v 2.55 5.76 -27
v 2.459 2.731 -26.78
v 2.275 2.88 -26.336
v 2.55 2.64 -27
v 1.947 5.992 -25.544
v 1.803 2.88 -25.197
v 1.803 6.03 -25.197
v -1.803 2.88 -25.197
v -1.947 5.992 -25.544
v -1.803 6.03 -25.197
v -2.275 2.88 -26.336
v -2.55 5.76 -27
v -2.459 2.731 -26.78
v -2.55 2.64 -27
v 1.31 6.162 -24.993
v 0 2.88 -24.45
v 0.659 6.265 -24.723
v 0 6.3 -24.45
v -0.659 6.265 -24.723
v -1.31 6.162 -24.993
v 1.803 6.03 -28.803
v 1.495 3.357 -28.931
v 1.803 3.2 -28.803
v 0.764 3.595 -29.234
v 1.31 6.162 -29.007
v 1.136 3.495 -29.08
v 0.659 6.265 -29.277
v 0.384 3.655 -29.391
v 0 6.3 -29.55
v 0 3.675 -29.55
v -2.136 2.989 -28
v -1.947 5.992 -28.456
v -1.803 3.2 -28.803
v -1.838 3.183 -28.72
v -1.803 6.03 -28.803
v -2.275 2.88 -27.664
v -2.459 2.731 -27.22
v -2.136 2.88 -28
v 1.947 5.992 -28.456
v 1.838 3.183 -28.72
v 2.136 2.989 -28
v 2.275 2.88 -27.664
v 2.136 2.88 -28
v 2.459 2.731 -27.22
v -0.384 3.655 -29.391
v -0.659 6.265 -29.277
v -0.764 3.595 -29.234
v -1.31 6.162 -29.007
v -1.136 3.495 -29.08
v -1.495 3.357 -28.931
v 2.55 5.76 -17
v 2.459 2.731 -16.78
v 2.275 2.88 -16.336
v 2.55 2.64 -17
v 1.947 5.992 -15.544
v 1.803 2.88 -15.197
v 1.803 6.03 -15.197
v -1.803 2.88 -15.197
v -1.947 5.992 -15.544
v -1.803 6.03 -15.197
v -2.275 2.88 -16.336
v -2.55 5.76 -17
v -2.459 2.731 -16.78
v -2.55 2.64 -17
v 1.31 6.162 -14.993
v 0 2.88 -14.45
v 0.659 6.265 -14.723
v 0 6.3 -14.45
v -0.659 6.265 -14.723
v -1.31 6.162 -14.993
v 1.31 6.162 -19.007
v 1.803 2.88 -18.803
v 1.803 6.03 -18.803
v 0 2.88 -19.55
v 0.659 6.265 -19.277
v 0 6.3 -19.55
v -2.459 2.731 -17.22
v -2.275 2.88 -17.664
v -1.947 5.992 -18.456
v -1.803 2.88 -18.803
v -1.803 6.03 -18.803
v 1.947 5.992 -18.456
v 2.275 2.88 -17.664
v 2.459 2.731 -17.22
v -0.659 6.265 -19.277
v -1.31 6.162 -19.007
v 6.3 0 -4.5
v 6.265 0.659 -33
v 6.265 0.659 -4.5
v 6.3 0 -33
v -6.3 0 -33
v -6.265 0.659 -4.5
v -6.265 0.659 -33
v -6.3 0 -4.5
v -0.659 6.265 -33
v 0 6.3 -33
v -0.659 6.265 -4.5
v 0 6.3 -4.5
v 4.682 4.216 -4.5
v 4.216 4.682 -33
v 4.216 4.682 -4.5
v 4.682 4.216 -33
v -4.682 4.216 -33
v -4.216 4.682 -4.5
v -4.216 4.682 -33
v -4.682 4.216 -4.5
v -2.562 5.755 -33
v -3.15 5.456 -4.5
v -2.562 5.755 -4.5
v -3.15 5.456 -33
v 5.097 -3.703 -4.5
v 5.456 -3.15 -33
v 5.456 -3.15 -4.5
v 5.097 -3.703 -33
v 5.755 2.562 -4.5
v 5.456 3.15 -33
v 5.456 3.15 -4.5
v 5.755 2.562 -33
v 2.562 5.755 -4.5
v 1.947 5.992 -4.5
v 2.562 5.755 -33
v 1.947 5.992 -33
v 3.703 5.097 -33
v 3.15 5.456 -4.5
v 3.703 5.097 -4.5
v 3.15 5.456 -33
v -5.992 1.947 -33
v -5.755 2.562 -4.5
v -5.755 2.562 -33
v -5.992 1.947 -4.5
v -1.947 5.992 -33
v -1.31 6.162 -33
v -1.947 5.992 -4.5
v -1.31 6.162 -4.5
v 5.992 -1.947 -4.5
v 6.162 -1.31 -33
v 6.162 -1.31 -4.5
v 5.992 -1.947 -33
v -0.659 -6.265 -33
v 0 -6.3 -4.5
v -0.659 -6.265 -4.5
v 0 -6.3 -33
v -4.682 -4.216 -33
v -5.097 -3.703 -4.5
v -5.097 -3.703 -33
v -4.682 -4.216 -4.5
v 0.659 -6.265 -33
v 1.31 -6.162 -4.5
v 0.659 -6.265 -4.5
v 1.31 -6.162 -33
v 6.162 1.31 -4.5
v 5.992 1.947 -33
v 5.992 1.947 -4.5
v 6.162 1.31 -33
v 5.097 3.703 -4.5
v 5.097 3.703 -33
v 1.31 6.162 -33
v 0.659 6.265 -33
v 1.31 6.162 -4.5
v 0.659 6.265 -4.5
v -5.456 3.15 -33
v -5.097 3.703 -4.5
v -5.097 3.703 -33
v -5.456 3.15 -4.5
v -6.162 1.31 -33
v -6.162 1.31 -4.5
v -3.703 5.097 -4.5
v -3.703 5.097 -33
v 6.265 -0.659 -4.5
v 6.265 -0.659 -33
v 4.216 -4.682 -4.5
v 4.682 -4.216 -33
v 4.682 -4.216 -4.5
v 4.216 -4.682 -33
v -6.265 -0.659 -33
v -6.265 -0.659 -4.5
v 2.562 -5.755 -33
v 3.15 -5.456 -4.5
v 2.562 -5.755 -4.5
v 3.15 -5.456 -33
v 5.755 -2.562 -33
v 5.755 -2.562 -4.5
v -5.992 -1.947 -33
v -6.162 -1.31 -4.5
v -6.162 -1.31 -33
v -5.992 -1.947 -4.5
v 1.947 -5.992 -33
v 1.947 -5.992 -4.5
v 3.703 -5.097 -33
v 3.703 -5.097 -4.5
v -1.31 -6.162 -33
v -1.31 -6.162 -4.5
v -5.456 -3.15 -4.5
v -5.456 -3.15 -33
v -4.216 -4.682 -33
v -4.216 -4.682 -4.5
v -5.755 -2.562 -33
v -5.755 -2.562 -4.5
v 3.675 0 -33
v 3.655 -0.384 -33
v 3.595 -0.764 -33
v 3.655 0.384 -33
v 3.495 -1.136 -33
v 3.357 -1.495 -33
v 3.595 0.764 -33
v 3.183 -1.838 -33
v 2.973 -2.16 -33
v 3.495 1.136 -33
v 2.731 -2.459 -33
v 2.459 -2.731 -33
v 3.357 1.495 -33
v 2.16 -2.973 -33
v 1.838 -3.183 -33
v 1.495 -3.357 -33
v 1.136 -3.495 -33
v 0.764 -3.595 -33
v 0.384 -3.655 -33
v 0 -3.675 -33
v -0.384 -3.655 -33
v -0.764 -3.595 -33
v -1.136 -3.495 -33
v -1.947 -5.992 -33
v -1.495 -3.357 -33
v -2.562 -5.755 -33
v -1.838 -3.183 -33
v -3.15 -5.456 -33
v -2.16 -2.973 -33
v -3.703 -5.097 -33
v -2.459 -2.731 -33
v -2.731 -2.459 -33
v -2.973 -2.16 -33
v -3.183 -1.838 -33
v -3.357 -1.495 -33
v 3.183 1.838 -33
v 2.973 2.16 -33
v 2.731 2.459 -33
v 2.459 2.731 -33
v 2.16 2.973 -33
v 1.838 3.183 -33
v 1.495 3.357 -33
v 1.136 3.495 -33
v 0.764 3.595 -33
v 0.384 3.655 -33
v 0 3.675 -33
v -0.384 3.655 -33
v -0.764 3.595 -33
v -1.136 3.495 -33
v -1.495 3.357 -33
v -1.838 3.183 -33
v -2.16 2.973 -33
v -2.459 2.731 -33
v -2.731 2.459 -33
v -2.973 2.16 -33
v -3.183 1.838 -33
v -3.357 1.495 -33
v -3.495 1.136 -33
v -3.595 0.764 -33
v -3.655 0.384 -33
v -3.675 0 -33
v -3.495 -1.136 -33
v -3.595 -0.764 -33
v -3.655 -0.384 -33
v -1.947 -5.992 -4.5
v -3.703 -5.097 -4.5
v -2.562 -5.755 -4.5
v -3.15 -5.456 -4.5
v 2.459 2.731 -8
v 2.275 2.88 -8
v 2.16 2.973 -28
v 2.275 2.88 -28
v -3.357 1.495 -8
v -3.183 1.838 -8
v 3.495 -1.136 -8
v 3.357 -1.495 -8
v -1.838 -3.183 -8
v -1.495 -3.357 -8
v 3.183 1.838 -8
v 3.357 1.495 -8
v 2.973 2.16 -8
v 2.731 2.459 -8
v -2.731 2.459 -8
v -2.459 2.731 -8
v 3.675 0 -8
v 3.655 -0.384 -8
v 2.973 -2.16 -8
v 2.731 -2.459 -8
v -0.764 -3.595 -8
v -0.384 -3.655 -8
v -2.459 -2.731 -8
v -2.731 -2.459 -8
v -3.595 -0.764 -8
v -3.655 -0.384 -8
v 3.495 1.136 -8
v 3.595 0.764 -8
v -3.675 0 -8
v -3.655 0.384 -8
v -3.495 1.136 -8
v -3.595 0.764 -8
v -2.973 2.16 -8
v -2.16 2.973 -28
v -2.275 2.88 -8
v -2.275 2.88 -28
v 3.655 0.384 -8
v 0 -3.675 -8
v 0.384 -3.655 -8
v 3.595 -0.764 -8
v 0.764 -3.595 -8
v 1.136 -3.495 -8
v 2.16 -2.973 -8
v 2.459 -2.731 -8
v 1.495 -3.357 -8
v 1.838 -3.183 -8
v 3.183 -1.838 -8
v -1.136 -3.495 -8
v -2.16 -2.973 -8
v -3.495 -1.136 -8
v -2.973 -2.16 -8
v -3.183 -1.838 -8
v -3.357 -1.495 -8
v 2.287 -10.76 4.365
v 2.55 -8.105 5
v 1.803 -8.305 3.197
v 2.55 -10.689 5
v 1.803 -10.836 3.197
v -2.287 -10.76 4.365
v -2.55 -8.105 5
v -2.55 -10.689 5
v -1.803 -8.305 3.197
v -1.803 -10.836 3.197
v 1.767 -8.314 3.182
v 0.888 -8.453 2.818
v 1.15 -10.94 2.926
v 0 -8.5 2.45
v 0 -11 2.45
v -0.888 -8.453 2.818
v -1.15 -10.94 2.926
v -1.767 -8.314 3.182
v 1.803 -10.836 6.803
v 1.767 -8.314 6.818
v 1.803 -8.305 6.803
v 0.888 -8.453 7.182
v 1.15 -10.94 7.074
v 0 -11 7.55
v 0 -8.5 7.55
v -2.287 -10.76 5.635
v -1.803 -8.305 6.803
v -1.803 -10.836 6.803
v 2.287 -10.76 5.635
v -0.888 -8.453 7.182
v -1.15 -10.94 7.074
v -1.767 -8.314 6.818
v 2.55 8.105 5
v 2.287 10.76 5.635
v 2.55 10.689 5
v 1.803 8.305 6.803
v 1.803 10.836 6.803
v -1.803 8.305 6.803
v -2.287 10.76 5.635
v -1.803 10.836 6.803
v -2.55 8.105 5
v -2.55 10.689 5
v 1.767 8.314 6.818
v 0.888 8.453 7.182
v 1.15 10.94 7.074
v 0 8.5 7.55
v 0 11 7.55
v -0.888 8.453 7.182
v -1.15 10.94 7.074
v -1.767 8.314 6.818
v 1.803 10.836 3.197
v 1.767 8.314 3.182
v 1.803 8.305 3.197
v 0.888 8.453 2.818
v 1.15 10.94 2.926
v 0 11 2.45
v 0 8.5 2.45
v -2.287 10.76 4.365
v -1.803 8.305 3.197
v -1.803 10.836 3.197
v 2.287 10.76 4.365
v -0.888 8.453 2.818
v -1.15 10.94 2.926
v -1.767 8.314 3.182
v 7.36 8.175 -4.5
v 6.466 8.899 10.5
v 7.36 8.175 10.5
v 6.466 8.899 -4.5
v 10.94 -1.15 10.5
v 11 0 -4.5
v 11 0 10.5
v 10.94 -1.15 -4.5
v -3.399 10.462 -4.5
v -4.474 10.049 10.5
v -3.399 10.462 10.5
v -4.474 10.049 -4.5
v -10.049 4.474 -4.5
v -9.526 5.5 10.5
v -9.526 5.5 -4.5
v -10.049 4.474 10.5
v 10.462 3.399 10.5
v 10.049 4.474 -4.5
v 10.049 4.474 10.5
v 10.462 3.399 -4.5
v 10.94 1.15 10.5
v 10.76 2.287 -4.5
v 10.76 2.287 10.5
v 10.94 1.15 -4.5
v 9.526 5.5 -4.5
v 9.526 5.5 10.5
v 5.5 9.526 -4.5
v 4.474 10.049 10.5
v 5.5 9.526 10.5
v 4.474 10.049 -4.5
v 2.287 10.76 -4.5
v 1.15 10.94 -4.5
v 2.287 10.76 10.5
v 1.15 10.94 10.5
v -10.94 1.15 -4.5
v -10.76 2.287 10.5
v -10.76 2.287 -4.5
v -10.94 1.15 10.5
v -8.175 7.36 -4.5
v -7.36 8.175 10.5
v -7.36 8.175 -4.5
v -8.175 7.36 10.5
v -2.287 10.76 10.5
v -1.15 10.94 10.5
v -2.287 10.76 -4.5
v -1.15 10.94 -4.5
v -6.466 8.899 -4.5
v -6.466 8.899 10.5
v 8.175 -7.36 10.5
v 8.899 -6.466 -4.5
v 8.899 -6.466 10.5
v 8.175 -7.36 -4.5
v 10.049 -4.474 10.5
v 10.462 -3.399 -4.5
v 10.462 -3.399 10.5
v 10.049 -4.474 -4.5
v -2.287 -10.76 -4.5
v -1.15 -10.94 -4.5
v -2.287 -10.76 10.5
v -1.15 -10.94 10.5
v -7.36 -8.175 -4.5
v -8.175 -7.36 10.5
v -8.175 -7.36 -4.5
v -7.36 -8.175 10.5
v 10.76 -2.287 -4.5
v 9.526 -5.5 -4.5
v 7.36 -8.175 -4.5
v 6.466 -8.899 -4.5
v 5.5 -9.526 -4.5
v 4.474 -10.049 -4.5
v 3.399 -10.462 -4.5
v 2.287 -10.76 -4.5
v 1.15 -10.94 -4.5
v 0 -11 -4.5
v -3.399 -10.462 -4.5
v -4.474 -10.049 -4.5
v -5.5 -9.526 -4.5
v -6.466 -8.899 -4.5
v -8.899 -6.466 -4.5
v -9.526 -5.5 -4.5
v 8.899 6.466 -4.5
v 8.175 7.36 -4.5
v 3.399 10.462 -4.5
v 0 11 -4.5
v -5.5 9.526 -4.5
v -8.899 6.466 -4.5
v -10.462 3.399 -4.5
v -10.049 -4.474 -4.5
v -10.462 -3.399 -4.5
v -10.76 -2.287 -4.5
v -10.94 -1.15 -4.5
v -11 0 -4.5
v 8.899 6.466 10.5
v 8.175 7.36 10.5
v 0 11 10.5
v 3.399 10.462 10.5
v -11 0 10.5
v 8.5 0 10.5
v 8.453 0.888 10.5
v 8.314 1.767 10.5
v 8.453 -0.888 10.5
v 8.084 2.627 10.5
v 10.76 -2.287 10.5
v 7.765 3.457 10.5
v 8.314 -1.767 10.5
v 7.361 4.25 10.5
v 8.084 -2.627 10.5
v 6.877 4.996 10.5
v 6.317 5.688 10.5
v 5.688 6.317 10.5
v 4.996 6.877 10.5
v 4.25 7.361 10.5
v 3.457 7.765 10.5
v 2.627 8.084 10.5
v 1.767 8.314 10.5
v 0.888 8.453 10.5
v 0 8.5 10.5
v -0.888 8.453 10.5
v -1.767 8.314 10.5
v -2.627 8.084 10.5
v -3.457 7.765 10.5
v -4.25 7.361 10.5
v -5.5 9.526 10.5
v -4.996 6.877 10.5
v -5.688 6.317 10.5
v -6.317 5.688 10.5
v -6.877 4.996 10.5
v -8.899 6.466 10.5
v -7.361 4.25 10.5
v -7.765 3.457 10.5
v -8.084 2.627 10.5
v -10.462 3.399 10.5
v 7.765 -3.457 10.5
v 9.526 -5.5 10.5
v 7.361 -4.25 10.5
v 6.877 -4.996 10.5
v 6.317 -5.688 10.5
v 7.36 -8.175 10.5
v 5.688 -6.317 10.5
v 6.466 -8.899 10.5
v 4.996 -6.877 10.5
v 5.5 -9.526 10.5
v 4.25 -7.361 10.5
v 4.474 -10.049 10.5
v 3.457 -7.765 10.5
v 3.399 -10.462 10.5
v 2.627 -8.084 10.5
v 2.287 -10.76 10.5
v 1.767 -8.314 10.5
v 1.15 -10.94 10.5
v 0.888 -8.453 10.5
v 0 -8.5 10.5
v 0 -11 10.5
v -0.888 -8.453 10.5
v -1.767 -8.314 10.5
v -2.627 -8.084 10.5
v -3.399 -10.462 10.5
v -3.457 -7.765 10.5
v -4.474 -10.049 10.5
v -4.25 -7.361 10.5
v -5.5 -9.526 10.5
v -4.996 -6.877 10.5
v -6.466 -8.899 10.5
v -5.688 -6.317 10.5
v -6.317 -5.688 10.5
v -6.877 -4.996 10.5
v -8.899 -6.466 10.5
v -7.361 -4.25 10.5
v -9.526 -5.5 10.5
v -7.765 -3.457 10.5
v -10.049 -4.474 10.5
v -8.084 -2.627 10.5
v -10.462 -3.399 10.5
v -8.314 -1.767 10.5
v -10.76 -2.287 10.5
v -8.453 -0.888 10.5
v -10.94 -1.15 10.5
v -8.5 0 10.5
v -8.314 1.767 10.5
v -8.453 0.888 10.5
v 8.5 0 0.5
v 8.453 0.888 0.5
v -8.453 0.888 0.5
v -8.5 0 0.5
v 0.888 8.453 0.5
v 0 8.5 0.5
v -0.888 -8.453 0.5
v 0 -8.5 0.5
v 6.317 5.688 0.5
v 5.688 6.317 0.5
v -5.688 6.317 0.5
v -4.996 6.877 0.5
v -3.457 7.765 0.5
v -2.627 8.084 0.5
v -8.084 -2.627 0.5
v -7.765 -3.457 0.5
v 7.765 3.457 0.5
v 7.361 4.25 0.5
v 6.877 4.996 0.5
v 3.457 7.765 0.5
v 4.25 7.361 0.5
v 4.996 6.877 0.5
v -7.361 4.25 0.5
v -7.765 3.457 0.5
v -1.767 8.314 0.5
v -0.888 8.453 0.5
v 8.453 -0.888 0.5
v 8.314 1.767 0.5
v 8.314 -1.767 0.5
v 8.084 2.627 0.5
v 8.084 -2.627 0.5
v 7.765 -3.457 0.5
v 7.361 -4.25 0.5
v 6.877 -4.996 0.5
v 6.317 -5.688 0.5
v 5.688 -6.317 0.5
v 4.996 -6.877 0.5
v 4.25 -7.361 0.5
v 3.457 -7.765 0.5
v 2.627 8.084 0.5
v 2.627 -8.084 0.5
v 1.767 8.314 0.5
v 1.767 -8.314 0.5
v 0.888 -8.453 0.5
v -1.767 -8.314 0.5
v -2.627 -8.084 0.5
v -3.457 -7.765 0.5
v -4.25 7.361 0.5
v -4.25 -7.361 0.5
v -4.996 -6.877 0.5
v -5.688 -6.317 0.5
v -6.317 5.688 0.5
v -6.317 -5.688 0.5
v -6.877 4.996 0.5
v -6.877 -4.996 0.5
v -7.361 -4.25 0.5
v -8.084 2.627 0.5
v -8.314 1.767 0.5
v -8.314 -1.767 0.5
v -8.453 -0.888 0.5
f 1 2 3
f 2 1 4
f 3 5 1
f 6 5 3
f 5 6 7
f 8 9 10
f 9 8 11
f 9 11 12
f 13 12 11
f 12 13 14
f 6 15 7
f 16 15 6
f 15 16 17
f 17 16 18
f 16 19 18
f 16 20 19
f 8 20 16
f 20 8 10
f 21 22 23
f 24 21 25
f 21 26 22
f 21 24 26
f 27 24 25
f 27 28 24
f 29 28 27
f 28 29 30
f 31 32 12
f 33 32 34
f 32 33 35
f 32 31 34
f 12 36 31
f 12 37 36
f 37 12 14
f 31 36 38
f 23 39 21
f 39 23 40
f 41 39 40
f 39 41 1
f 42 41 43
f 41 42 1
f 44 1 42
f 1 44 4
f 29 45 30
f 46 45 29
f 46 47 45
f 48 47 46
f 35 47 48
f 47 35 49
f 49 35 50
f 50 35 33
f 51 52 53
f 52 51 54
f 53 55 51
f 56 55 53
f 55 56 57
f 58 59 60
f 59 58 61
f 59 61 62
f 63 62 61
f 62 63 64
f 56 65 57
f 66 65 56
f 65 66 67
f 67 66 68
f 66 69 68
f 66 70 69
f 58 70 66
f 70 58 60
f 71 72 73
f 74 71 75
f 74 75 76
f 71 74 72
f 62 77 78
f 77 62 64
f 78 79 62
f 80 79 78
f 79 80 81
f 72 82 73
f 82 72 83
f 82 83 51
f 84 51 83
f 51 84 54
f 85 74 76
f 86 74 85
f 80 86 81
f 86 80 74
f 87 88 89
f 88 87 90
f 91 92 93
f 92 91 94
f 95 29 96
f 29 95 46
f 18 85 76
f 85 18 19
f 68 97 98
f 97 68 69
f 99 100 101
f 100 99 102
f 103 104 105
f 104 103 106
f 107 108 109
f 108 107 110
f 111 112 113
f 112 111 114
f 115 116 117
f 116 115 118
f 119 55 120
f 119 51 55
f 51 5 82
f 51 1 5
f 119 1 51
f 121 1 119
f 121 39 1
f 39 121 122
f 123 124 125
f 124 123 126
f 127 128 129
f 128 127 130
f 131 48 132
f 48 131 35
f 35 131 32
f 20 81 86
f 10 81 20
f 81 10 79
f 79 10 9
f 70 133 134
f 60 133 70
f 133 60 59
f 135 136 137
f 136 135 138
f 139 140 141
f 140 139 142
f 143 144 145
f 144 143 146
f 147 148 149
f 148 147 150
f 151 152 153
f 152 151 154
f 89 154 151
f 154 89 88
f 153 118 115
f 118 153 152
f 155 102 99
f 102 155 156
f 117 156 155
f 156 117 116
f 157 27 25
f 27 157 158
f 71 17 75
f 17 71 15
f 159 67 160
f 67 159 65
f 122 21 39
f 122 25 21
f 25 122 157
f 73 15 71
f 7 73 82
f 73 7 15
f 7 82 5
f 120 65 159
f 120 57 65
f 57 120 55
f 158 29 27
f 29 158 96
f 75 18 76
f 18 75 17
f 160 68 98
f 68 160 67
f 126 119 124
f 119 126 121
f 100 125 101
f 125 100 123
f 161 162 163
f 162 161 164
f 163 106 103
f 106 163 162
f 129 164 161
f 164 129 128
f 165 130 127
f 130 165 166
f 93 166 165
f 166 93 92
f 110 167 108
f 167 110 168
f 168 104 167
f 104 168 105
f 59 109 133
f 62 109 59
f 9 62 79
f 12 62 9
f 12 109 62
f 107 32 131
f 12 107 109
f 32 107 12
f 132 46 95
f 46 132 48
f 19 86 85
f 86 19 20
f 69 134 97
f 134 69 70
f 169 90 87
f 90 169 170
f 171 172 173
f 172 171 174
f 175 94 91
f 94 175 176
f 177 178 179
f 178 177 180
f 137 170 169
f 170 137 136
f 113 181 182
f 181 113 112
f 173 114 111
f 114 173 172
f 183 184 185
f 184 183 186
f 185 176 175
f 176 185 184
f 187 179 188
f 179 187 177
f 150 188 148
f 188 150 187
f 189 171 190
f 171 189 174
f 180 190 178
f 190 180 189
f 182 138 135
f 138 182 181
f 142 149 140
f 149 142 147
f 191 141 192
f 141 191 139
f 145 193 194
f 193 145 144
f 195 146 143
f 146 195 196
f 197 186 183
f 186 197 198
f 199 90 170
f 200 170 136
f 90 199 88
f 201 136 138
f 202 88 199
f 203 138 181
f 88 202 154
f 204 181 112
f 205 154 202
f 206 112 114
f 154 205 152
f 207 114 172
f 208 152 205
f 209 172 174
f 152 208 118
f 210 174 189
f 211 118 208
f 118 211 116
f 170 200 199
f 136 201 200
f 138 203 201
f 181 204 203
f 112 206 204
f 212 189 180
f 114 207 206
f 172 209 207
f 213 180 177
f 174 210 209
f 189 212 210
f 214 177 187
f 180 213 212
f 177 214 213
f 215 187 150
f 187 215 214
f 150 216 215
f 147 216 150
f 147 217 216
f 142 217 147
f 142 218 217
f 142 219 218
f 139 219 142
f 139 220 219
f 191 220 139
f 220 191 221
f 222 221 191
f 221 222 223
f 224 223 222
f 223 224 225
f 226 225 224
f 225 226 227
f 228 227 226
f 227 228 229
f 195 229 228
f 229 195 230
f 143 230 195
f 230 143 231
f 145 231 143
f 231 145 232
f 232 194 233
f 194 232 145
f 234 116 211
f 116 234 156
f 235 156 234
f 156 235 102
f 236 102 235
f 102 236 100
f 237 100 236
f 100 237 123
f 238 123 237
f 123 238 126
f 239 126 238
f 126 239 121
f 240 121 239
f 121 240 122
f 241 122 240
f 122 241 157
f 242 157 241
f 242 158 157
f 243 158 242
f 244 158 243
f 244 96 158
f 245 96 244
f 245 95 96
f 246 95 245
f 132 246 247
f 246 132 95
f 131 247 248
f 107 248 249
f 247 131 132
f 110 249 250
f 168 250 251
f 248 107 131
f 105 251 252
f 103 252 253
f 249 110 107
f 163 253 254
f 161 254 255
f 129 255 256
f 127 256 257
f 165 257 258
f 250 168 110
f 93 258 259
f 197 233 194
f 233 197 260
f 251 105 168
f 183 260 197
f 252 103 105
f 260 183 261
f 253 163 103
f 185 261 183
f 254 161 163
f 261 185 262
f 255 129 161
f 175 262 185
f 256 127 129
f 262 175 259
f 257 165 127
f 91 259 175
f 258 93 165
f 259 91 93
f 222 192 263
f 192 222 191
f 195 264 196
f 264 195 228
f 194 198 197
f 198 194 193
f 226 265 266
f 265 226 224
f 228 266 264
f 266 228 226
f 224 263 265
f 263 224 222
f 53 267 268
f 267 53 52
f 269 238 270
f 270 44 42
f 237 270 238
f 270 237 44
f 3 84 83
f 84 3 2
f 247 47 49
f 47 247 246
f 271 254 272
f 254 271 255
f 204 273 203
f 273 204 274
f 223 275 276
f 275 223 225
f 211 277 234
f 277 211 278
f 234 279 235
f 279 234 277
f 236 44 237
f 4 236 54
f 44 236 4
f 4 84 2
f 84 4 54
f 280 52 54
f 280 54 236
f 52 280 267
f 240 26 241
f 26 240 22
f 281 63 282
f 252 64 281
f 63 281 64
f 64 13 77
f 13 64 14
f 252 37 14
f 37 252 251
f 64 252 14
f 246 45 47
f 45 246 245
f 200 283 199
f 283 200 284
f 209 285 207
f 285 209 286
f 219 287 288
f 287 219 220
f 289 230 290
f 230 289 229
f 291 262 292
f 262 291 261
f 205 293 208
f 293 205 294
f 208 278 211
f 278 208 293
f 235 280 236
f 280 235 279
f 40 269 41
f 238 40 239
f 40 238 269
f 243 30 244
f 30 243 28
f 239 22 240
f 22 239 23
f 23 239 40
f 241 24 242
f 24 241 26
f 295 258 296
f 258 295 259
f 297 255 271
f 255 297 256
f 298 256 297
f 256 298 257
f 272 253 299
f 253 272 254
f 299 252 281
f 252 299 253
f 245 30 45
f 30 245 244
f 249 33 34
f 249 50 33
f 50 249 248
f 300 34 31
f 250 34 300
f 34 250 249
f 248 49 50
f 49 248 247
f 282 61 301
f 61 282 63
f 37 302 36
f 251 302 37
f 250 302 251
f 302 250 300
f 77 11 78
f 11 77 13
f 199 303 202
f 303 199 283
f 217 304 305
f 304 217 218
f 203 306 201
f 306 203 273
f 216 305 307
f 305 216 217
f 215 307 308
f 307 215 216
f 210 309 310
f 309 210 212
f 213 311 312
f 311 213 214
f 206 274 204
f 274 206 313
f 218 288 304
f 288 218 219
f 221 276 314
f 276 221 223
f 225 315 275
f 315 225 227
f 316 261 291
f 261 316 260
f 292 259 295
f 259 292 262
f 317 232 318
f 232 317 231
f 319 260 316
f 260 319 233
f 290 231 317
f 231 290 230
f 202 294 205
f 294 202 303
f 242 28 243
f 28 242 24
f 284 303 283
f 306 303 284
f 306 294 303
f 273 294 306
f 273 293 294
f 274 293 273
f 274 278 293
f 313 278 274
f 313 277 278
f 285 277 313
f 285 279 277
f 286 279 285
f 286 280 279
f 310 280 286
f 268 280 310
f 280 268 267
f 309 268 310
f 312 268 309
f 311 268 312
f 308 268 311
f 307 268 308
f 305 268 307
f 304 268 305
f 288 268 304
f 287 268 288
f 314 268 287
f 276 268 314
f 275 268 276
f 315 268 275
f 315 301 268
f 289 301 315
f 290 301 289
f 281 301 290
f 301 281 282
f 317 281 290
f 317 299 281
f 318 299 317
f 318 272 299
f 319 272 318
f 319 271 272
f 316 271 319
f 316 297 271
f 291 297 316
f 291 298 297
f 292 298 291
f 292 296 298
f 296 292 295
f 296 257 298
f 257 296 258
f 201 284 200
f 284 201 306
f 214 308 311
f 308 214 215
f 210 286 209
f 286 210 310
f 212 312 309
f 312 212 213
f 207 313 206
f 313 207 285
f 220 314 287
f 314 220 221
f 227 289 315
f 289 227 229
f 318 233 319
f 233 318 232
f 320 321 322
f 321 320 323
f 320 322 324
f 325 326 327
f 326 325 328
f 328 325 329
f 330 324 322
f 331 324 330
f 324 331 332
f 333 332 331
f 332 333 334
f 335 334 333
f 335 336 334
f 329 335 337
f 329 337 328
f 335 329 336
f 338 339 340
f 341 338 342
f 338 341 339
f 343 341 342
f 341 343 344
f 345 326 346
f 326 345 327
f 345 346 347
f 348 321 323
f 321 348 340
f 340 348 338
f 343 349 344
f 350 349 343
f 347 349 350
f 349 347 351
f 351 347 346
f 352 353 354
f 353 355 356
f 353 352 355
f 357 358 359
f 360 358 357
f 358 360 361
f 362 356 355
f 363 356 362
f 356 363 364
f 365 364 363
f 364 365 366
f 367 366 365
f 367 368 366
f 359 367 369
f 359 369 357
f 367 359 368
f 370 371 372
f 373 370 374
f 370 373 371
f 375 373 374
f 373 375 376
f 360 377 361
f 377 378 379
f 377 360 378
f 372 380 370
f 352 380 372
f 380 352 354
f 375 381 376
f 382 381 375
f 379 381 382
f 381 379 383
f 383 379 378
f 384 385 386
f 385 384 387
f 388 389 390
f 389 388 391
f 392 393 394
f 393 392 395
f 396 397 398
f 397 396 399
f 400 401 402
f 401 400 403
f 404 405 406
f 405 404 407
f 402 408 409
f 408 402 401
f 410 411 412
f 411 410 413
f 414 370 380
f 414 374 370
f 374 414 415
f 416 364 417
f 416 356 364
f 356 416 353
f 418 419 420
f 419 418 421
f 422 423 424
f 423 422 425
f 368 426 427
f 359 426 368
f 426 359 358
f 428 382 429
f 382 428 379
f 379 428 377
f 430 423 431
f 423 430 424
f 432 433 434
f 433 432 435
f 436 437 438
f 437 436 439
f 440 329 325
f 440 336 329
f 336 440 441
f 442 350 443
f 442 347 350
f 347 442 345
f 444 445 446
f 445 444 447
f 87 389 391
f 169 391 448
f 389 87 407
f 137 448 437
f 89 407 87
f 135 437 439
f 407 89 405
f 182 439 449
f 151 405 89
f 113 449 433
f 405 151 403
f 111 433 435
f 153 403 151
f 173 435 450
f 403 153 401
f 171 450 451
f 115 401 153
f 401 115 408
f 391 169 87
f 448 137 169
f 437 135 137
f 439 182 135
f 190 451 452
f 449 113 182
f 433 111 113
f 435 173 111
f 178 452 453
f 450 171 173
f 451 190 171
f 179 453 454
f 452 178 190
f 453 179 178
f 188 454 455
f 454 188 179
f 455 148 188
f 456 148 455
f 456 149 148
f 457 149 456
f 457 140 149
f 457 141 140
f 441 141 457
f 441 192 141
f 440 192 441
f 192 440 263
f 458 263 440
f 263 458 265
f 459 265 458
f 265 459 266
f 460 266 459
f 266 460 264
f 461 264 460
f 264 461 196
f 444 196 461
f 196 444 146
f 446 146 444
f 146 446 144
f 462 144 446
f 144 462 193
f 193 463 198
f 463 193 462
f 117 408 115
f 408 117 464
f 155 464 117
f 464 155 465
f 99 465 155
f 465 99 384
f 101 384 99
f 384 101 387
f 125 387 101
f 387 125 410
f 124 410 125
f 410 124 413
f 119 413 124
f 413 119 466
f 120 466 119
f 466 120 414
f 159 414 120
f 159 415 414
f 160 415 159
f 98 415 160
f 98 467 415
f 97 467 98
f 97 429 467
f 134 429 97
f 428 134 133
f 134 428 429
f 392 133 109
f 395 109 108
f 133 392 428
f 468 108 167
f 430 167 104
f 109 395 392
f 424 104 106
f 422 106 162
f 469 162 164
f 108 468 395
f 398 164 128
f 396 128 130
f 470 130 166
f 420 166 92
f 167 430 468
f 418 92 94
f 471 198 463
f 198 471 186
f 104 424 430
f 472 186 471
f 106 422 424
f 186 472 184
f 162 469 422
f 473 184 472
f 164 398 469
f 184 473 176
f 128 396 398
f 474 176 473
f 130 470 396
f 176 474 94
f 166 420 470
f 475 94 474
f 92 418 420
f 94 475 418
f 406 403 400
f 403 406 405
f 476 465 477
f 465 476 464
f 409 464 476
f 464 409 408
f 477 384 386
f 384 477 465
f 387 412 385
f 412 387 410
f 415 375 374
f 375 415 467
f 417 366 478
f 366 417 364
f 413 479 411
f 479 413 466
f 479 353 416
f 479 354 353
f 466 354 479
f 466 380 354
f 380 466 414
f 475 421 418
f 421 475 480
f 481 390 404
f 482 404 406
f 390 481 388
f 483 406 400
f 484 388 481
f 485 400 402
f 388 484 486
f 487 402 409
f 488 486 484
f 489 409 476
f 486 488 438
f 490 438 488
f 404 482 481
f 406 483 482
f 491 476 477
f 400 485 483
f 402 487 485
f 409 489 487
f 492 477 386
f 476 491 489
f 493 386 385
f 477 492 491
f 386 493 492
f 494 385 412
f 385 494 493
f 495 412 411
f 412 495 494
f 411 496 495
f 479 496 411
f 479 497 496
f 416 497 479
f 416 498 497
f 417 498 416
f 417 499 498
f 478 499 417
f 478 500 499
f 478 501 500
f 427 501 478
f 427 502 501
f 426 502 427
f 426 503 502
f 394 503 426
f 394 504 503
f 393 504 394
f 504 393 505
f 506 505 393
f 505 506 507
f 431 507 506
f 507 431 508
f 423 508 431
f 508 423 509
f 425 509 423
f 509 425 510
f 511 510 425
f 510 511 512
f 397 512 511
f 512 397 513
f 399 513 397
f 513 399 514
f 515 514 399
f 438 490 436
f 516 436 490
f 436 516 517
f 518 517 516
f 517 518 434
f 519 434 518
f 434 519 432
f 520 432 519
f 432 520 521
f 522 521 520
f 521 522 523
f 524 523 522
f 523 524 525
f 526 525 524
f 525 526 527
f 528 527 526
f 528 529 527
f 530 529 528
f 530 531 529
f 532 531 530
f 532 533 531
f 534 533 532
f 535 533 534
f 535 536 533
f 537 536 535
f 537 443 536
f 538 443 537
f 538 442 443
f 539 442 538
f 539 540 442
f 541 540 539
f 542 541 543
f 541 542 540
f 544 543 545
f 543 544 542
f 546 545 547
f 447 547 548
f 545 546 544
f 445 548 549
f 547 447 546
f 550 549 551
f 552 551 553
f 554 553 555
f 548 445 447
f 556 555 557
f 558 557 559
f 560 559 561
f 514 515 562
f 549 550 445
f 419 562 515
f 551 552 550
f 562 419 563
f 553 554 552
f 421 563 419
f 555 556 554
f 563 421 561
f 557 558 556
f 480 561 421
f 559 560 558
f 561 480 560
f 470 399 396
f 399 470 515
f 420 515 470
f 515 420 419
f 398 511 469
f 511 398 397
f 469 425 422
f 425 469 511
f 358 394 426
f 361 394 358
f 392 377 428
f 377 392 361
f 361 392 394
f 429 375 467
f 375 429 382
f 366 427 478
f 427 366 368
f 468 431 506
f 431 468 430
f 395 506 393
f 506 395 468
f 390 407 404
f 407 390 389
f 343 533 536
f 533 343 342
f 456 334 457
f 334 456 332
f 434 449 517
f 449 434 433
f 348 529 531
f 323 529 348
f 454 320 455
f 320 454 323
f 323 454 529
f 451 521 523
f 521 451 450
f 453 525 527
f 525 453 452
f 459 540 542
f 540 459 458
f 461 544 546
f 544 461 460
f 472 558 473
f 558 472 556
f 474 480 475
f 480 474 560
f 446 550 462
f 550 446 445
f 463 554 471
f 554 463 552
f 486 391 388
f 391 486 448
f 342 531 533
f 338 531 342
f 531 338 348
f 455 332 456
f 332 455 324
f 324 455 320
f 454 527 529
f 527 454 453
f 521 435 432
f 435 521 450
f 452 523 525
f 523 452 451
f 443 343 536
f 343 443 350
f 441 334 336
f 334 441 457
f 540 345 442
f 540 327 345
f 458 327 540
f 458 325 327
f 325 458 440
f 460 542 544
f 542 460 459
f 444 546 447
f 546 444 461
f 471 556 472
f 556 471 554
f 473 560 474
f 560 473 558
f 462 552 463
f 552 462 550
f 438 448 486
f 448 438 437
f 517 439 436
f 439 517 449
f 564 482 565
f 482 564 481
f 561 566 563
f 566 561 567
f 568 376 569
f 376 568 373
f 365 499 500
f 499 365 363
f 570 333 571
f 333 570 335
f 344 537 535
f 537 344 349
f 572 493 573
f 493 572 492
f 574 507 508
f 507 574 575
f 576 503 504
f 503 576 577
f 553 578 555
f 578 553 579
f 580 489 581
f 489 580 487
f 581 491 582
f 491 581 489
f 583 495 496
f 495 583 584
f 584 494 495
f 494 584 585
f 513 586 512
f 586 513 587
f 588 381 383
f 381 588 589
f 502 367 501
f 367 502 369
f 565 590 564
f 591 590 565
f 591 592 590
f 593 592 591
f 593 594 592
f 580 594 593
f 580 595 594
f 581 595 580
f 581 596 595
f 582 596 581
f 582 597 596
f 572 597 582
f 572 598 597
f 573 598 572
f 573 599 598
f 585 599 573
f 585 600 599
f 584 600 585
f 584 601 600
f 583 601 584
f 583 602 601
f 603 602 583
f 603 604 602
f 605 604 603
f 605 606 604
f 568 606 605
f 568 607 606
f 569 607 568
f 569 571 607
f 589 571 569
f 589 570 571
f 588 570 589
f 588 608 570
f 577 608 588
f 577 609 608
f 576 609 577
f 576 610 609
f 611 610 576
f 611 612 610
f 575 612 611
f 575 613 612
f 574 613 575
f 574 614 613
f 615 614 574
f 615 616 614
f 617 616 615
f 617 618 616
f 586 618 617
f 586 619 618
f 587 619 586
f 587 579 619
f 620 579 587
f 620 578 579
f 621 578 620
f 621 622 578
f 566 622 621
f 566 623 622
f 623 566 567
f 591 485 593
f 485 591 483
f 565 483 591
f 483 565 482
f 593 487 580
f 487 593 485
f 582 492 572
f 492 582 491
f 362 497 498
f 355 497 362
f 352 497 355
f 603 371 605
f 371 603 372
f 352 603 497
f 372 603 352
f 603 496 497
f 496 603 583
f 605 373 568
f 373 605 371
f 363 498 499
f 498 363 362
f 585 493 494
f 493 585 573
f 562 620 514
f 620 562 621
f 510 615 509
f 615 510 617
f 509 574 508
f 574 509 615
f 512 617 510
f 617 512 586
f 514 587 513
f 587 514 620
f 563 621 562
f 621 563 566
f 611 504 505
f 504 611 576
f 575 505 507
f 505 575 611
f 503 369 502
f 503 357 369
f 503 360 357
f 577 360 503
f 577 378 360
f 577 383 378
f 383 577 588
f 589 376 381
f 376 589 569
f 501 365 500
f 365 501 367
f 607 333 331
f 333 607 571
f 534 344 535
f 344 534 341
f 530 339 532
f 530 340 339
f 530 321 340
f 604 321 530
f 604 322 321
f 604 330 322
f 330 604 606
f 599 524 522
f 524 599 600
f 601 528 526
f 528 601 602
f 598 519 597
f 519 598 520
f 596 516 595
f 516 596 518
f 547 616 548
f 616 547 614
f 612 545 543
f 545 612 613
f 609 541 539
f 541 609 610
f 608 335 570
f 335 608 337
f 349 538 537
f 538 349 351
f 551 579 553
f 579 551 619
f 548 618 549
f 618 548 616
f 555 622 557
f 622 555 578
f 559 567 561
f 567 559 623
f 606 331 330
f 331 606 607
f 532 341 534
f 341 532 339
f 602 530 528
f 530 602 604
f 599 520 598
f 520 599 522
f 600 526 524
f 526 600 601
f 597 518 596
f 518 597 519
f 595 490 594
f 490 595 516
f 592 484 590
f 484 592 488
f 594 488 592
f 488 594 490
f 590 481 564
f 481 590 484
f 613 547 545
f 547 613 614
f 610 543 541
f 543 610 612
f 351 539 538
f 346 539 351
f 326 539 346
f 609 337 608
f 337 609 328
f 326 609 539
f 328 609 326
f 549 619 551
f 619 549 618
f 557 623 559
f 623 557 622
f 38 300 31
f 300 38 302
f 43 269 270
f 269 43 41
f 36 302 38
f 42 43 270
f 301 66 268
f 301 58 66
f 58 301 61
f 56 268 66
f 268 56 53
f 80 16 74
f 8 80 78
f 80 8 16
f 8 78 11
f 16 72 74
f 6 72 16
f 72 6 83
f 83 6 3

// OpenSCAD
// file: beam.scad
// Misumi Beam
module misumibeam(size1=15, size2=15, length=100, extra=0.1) {
   difference() {
      cube([size1+extra, size2+extra, length], center=true);
      for (a = [0:180:180]) rotate([0, 0, a]) {
         translate([size1/2, 0, 0]) {
          //  % cube([size1/2, 3, length+1], center=true);
			minkowski() {
               cube([size1/2-(extra+1), size1/6-extra, length+1], center=true);
               cylinder(r=0.5, h=1, center=true);
			} 
        }
      }
      for (a = [0:90:270]) rotate([0, 0, a]) {
         translate([size2/2, 0, 0]) {
          //  % cube([size1/2, 3, length+1], center=true);
			minkowski() {
               cube([size1/2-(extra+1), size1/6-extra, length+1], center=true);
               cylinder(r=0.5, h=1, center=true);
			} 
        }
      }
   }
}

# misumibeam(15, 15, 300);
// file: nema17.scad
include <configuration.scad>;

// NEMA17 stepper motor

module stepper_motor(length=47.5, shaft_radius=5.00/2) {
   intersection() {
      cube([42.2, length, 42.2], center=true);
      rotate([90, 0, 0])
      cylinder(r=25.5, h=length+1, center=true);
   }
   translate([0, -length/2, 0]) {
// drive shaft
		rotate([90, 0, 0]) {
		 cylinder(r1=11, r2=11, h=2, $fn=40);
		 cylinder(r=shaft_radius, h=25);
		}
// mounting bolts
      for (a = [0:90:360]) rotate([0, a, 0]) {
         translate([15.5, 0, 15.5]) rotate([90, 0, 0])
         cylinder(r=m3_major_radius, h=10,  $fn=30);
      }
   }
}

module stepper_motor_boolean(length=47.5, shaft_radius=7.00/2) {
   intersection() {
      cube([42.2, length, 42.2], center=true);
      rotate([90, 0, 0])
      cylinder(r=25.5, h=length+1, center=true);
   }
   translate([0, -length/2, 0]) {
// drive shaft
		rotate([90, 0, 0]) {
		 cylinder(r1=12+extra_boolean, r2=11+extra_boolean, h=2, $fn=40);
		 cylinder(r=shaft_radius, h=25, $fn=8);
		}
// mounting bolts
      for (a = [0:90:360]) rotate([0, a, 0]) {
         translate([15.5, 0, 15.5]) rotate([90, 0, 0])
         cylinder(r=m3_major_radius+extra_radius, h=10,  $fn=8);
      }
   }
}

//# stepper_motor();
# stepper_motor_boolean();
// file: metric_fastners.scad
/*
 *  OpenSCAD Metric Fastners Library (www.openscad.org)
 *  Copyright (C) 2010-2011  Giles Bathgate
 *
 *  This program is free software; you can redistribute it and/or modify
 *  it under the terms of the GNU General Public License as published by
 *  the Free Software Foundation; either version 3 of the License,
 *  LGPL version 2.1, or (at your option) any later version of the GPL.
 *
 *  This program is distributed in the hope that it will be useful,
 *  but WITHOUT ANY WARRANTY; without even the implied warranty of
 *  MERCHANTABILITY or FITNESS FOR A PARTICULAR PURPOSE.  See the
 *  GNU General Public License for more details.
 *
 *  You should have received a copy of the GNU General Public License
 *  along with this program; if not, write to the Free Software
 *  Foundation, Inc., 59 Temple Place, Suite 330, Boston, MA 02111-1307 USA
 *
*/

$fn=50;
apply_chamfer=false;

// M3 Mesurements
m3_minor_radius = 2.50/2;
m3_major_radius = 3.00/2;
m3_head_radius = 5.50/2;
m3_nut_radius = 6.20/2;

// M4 Mesurements
m4_minor_radius = 3.30/2;
m4_major_radius = 4.00/2;
m4_head_radius = 7.00/2;
m4_nut_radius = 8.26/2;

// M5 Mesurements
m5_minor_radius = 4.20/2;
m5_major_radius = 5.00/2;
m5_head_radius = 8.50/2;
m5_nut_radius = 10.33/2;

// M6 Mesurements
m6_minor_radius = 5.00/2;
m6_major_radius = 6.00/2;
m6_head_radius = 10.00/2;
m6_nut_radius = 12.40/2;


module cap_bolt(dia,len)
{
	e=1.5*dia;
	h1=1.25*dia;
	cylinder(r=dia/2,h=len);
	translate([0,0,-h1]) cylinder(r=e/2,h=h1);
}

module cap_bolt_boolean(dia,len,fn=8)
{
	e=1.87*dia;
	h1=2*dia;
	cylinder(r=dia/2,h=len,$fn=fn);
	translate([0,0,-h1+0.05]) cylinder(r2=e/2+0.15,r1=e/2+0.3,h=h1,$fn=fn);
}

module csk_bolt(dia,len)
{
	h1=0.6*dia;
	h2=len-h1;
	cylinder(r=dia/2,h=h2);
	cylinder(r1=dia,r2=dia/2,h=h1);
}

module washer(dia)
{
	t=0.1*dia;
	difference()
	{
		cylinder(r=dia,h=t);
		translate([0,0,-t/2])cylinder(r=dia/2,h=t*2);
	}
}

module flat_nut(dia)
{
	m=0.8*dia;
	e=2.066*dia;
	c=0.2*dia;
	difference()
	{
		cylinder(r=e/2,h=m,$fn=6);
		translate([0,0,-m/2])cylinder(r=dia/2,h=m*2);
		if(apply_chamfer)
		    translate([0,0,c])cylinder_chamfer(e/2,c);
	}
}

module flat_nut_boolean(dia)
{
	m=0.8*dia;
	e=2.066*dia;
	c=0.2*dia;
	difference()
	{
		cylinder(r=e/2,h=m,$fn=6);
		if(apply_chamfer)
		    translate([0,0,c])cylinder_chamfer(e/2,c);
	}
}

module bolt(dia,len)
{
	e=1.8*dia;
	k=0.7*dia;
	c=0.2*dia;
	difference()
	{
		cylinder(r=e/2,h=k,$fn=6);
		if(apply_chamfer)
		    translate([0,0,c])cylinder_chamfer(e/2,c);
	}

	cylinder(r=dia/2,h=len);

}

module cylinder_chamfer(r1,r2)
{
	t=r1-r2;
	p=r2*2;
	rotate_extrude()
	difference()
	{
		translate([t,-p])square([p,p]);
		translate([t,0])circle(r2);
	}
}

module chamfer(len,r)
{
	p=r*2;
	linear_extrude(height=len)
	difference()
	{
		square([p,p]);
		circle(r);
	}
}

union()
{
//cap_bolt(3,15);
//cap_bolt_boolean(3,15,30);
//csk_bolt(3,14);
//washer(3);
//flat_nut_boolean(3);
//bolt(4,14);
//cylinder_chamfer(8,1);
//chamfer(10,2);
}
// file: configuration.scad
// Delta-Six 3D Printer 
// Created by Sage Merrill
// Released on Openbuilds.com
// Based on orginal design by Johann C. Rocholl (Kossel Printer)
// License = Attribution Share Alike - CC BY SA


include <metric_fastners.scad>;
use <nema17.scad>;
use <beam.scad>;
use <timing_belts.scad>;

$fn=20;

// Increase this if your slicer or printer makes the holes too small.
extra_radius = 0.10;
extra_boolean = 0.15;

// Delta Parameters
global_delta_arm_seperation = 55;
global_effector_bore_radius = 21;
global_mounting_hole_radius = 27;

// M5 Hardware
m5_bolt = m5_major_radius*2;
m5_bolt_boolean = m5_bolt+extra_radius;

// M3 Hardware
m3_bolt = m3_major_radius*2;
m3_bolt_boolean = m3_bolt+extra_radius;

// NEMA17 stepper motor
motor_length = 47.5;
motor_shaft_radius= 5.00/2;


module slot_fill(length = 20) {
	difference() {
		translate([0, 0, 0]) rotate([0, 0, 0])
		 cylinder(r=4.5, h=length, center=true,  $fn=4);	

//plane sides
		translate([-3.8, 0, 0]) rotate([0, 0, 0])
		 cube([4, 20, length*2], center=true);
		translate([3, 0, 0]) rotate([0, 0, 0])
		 cube([6, 20, length*2], center=true);
	}
}



height = 21;
thickness = 5;
motor_offset = 48.7;
triangle_side = 316;
printer_height = 680;
delta_radius = 300;
// main file
include <configuration.scad>;

module end_cap1(){
       
  union(){
    translate([0,0,3]){
      difference() {
        cylinder(r=11, h=15, center=true, $fn=60);
        translate([0,0,5]) cylinder(r=8.50, h=15, center=true, $fn=60);
//        color([0,0,1]) union() {
//          translate([15,-5,-5]){
//            rotate([90,0,0])
//            import("../1605.stl");
//          }
//          translate([0,0,35]){
//            cylinder(r=5, h=80, center=true, $fn=60);
//          }
//       }
       for(x =[-1, 1]) translate([0, 25*x, 2]) rotate([90*x, 0, 0]) cap_bolt_boolean(m5_bolt_boolean, 20);
      }
           
    }
    difference(){
      union(){
        difference(){
          translate([0,0,-18]) cylinder(r=6.30, h=30, center=true, $fn=60);
          translate([0,0,-23]) cylinder(r=3.675, h=30, center=true, $fn=60);
        }
        translate([-3.5,2.88,-28]) cube([7,2,25]);
      }
      for(z =[3, 13]) translate([0, 20, -30+z]) rotate([90, 0, 0]) cap_bolt_boolean(m5_bolt_boolean, 20);
    }
  }
}

end_cap1();
